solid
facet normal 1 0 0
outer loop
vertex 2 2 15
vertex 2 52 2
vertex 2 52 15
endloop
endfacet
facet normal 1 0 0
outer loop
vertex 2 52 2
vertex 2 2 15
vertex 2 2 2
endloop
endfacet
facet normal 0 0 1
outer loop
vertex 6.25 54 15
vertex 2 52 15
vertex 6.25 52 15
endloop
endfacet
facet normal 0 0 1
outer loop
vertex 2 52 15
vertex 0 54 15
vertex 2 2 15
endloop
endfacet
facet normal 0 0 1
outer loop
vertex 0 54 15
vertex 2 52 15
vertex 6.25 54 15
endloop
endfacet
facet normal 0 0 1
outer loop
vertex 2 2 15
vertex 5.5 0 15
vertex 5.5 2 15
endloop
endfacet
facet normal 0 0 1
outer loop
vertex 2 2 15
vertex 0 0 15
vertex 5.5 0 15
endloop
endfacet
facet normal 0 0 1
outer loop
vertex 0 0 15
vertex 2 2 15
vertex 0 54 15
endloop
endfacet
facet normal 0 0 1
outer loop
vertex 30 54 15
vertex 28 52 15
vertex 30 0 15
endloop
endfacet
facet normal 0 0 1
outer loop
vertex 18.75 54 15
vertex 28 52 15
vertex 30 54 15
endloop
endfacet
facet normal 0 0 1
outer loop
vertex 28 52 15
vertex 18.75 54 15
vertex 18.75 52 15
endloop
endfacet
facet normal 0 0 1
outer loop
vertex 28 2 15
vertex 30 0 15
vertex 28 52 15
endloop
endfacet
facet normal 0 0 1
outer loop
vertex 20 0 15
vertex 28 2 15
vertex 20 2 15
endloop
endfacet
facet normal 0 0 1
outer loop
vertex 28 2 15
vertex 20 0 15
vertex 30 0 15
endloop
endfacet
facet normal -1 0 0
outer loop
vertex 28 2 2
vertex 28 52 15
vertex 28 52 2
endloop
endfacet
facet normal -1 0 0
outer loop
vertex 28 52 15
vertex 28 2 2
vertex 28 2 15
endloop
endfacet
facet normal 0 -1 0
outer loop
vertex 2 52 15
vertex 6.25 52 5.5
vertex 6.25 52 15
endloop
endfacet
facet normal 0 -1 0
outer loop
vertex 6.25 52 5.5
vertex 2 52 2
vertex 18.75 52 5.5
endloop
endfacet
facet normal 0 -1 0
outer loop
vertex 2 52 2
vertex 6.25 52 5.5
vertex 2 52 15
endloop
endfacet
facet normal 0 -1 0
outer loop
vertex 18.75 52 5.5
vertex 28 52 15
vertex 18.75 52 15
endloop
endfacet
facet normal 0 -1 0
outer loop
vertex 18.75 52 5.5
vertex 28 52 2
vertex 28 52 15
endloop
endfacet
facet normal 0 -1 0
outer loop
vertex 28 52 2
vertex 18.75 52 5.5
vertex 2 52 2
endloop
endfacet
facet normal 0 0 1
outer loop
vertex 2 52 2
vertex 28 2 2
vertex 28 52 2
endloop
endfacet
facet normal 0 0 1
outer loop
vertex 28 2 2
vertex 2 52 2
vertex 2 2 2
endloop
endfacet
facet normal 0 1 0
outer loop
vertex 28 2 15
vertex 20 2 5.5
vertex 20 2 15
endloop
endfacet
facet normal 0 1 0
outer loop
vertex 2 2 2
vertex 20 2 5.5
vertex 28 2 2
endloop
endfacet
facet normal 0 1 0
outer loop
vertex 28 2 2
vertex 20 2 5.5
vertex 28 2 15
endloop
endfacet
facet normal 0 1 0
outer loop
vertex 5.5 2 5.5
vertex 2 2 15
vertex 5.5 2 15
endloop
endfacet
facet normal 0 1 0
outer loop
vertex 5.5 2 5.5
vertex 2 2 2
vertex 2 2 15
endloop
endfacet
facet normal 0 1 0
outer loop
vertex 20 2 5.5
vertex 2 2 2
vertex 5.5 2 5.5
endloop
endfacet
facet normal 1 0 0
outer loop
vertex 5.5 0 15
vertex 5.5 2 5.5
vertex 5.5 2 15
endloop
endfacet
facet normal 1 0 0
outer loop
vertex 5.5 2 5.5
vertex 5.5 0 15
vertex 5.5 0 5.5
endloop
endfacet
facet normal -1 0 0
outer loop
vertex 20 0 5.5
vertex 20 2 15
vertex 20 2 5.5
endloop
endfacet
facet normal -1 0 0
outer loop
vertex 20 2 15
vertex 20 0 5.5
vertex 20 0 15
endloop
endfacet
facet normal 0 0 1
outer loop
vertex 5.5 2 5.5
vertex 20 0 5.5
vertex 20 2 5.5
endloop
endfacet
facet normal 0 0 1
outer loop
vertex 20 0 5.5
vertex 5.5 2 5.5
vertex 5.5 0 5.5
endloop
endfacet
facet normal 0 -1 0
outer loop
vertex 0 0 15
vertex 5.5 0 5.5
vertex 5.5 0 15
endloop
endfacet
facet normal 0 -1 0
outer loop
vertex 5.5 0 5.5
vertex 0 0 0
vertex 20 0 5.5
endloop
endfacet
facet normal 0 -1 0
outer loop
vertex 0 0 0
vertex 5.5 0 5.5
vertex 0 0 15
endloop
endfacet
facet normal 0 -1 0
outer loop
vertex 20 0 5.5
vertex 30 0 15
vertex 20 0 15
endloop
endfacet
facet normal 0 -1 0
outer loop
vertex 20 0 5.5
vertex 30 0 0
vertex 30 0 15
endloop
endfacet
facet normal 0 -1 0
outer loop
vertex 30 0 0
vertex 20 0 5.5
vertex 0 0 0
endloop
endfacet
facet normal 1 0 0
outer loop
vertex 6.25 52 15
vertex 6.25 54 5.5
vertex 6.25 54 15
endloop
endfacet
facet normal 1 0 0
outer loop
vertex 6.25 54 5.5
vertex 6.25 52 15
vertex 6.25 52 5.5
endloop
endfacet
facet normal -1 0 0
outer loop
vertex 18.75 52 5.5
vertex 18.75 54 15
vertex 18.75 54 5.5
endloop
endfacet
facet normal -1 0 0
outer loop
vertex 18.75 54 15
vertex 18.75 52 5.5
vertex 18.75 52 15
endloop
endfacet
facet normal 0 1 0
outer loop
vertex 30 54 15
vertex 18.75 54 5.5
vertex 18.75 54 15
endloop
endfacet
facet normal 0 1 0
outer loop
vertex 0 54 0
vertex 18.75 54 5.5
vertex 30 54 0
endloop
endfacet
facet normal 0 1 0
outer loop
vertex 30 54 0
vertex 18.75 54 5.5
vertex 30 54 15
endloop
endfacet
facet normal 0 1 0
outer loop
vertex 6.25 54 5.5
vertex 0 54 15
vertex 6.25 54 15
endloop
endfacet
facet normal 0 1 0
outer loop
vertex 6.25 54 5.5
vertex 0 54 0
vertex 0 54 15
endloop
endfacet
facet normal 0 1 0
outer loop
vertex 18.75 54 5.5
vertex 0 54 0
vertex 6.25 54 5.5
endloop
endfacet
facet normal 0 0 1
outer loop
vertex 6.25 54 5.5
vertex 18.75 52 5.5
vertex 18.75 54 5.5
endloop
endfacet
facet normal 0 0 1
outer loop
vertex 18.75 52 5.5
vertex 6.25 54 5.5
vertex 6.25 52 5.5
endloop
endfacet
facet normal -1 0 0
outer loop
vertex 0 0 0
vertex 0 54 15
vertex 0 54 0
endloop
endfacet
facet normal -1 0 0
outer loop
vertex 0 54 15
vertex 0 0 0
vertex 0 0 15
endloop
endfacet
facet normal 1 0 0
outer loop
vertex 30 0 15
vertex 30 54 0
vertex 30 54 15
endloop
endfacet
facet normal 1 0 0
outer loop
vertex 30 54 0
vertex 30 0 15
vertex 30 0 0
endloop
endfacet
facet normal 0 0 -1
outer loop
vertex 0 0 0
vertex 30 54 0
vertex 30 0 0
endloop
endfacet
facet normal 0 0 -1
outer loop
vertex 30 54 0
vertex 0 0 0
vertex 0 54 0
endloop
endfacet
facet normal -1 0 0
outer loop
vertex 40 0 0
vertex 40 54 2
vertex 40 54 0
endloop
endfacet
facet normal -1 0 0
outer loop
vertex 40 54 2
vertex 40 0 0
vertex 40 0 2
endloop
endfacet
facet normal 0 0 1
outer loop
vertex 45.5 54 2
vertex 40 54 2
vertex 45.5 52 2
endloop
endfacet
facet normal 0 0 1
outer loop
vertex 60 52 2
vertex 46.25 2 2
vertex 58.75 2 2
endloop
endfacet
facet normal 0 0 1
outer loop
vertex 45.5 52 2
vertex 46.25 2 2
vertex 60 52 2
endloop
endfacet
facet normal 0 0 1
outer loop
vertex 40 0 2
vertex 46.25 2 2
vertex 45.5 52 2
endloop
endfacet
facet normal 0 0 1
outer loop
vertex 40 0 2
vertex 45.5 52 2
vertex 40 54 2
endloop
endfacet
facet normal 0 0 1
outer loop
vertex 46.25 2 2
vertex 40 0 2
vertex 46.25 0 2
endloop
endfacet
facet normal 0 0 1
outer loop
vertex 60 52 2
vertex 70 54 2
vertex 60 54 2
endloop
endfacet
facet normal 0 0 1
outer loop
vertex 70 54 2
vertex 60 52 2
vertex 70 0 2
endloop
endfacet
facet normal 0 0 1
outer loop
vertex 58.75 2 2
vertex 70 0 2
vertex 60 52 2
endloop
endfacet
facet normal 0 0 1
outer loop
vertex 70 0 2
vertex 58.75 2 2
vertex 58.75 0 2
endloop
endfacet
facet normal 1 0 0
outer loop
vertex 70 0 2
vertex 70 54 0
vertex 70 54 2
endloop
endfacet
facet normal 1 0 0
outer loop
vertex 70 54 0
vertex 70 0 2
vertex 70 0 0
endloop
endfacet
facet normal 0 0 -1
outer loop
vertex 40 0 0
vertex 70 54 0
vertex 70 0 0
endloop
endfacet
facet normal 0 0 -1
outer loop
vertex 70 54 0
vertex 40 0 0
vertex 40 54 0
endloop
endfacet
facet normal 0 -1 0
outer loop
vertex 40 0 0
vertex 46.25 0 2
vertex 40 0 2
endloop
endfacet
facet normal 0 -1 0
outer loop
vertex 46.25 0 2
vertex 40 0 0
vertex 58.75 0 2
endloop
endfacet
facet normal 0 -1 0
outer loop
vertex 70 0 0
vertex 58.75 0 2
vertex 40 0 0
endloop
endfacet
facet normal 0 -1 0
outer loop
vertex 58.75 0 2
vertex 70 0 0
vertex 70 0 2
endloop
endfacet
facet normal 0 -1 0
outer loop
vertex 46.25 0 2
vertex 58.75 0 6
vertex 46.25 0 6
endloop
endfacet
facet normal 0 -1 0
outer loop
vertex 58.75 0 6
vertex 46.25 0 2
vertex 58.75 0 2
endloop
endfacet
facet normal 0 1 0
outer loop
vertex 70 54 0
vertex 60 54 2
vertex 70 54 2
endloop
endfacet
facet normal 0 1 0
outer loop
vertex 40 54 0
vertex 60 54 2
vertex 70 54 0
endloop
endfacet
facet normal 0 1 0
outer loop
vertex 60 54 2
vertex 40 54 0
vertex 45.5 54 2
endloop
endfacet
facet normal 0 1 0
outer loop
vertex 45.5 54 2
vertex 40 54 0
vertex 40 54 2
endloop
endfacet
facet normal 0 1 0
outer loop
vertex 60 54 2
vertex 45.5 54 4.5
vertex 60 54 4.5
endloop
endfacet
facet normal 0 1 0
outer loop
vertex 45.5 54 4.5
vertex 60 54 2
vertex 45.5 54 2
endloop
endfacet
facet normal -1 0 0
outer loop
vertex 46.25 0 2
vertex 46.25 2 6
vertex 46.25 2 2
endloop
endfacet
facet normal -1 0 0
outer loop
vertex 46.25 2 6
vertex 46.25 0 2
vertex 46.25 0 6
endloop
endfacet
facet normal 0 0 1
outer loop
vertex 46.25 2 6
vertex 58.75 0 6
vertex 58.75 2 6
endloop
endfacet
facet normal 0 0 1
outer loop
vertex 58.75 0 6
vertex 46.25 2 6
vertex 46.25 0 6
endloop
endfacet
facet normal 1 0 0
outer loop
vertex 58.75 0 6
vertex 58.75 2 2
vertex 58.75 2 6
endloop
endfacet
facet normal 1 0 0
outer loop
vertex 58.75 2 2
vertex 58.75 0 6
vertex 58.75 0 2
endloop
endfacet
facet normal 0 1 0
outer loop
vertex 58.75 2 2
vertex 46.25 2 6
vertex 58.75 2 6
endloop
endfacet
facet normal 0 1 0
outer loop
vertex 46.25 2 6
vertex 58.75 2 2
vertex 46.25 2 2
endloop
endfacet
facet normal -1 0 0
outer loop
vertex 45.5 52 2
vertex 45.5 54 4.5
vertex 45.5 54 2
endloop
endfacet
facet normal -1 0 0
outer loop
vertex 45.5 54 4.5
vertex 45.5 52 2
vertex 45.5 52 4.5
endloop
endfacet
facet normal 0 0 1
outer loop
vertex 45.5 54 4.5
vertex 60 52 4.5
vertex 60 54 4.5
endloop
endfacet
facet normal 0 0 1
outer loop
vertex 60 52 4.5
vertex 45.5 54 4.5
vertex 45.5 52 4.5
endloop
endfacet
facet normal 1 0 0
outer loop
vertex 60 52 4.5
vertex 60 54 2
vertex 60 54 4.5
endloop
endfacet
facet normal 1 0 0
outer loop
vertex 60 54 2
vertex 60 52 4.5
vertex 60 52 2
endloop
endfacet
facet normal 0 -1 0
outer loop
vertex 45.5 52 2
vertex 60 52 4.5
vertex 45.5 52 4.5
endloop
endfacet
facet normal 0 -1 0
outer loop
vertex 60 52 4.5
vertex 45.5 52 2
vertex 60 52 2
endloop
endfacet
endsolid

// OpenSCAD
$fa=5; $fs=0.1;

intW=26;
intL=50;
intH=13;
wall=2;

// корпус
difference(){
    union(){
        cube([intW+2*wall, intL+2*wall, intH+wall]); //наружнее
    }
    
    union(){
        translate([wall,wall,wall]) cube([intW, intL, intH]); // вырез
        translate([3.5+wall, 0, 3.5+wall]) cube([14.5, wall, intH-3.5]); // USB F
        translate([4.25+wall, intL+wall, 3.5+wall])  cube([12.5, wall, intH-3.5]); // USB M
    }
}    

// крышка
translate([intW+2*wall+10, 0,0]) {
    
    cube([intW+2*wall, intL+2*wall, wall]); // плоскость
    translate([4.25+wall, 0, wall])  cube([12.5, wall, intH-3.5-5.5]);// USB M
    translate([3.5+wall, intL+wall, wall]) cube([14.5, wall, intH-3.5-7]); // USB F
    
}
